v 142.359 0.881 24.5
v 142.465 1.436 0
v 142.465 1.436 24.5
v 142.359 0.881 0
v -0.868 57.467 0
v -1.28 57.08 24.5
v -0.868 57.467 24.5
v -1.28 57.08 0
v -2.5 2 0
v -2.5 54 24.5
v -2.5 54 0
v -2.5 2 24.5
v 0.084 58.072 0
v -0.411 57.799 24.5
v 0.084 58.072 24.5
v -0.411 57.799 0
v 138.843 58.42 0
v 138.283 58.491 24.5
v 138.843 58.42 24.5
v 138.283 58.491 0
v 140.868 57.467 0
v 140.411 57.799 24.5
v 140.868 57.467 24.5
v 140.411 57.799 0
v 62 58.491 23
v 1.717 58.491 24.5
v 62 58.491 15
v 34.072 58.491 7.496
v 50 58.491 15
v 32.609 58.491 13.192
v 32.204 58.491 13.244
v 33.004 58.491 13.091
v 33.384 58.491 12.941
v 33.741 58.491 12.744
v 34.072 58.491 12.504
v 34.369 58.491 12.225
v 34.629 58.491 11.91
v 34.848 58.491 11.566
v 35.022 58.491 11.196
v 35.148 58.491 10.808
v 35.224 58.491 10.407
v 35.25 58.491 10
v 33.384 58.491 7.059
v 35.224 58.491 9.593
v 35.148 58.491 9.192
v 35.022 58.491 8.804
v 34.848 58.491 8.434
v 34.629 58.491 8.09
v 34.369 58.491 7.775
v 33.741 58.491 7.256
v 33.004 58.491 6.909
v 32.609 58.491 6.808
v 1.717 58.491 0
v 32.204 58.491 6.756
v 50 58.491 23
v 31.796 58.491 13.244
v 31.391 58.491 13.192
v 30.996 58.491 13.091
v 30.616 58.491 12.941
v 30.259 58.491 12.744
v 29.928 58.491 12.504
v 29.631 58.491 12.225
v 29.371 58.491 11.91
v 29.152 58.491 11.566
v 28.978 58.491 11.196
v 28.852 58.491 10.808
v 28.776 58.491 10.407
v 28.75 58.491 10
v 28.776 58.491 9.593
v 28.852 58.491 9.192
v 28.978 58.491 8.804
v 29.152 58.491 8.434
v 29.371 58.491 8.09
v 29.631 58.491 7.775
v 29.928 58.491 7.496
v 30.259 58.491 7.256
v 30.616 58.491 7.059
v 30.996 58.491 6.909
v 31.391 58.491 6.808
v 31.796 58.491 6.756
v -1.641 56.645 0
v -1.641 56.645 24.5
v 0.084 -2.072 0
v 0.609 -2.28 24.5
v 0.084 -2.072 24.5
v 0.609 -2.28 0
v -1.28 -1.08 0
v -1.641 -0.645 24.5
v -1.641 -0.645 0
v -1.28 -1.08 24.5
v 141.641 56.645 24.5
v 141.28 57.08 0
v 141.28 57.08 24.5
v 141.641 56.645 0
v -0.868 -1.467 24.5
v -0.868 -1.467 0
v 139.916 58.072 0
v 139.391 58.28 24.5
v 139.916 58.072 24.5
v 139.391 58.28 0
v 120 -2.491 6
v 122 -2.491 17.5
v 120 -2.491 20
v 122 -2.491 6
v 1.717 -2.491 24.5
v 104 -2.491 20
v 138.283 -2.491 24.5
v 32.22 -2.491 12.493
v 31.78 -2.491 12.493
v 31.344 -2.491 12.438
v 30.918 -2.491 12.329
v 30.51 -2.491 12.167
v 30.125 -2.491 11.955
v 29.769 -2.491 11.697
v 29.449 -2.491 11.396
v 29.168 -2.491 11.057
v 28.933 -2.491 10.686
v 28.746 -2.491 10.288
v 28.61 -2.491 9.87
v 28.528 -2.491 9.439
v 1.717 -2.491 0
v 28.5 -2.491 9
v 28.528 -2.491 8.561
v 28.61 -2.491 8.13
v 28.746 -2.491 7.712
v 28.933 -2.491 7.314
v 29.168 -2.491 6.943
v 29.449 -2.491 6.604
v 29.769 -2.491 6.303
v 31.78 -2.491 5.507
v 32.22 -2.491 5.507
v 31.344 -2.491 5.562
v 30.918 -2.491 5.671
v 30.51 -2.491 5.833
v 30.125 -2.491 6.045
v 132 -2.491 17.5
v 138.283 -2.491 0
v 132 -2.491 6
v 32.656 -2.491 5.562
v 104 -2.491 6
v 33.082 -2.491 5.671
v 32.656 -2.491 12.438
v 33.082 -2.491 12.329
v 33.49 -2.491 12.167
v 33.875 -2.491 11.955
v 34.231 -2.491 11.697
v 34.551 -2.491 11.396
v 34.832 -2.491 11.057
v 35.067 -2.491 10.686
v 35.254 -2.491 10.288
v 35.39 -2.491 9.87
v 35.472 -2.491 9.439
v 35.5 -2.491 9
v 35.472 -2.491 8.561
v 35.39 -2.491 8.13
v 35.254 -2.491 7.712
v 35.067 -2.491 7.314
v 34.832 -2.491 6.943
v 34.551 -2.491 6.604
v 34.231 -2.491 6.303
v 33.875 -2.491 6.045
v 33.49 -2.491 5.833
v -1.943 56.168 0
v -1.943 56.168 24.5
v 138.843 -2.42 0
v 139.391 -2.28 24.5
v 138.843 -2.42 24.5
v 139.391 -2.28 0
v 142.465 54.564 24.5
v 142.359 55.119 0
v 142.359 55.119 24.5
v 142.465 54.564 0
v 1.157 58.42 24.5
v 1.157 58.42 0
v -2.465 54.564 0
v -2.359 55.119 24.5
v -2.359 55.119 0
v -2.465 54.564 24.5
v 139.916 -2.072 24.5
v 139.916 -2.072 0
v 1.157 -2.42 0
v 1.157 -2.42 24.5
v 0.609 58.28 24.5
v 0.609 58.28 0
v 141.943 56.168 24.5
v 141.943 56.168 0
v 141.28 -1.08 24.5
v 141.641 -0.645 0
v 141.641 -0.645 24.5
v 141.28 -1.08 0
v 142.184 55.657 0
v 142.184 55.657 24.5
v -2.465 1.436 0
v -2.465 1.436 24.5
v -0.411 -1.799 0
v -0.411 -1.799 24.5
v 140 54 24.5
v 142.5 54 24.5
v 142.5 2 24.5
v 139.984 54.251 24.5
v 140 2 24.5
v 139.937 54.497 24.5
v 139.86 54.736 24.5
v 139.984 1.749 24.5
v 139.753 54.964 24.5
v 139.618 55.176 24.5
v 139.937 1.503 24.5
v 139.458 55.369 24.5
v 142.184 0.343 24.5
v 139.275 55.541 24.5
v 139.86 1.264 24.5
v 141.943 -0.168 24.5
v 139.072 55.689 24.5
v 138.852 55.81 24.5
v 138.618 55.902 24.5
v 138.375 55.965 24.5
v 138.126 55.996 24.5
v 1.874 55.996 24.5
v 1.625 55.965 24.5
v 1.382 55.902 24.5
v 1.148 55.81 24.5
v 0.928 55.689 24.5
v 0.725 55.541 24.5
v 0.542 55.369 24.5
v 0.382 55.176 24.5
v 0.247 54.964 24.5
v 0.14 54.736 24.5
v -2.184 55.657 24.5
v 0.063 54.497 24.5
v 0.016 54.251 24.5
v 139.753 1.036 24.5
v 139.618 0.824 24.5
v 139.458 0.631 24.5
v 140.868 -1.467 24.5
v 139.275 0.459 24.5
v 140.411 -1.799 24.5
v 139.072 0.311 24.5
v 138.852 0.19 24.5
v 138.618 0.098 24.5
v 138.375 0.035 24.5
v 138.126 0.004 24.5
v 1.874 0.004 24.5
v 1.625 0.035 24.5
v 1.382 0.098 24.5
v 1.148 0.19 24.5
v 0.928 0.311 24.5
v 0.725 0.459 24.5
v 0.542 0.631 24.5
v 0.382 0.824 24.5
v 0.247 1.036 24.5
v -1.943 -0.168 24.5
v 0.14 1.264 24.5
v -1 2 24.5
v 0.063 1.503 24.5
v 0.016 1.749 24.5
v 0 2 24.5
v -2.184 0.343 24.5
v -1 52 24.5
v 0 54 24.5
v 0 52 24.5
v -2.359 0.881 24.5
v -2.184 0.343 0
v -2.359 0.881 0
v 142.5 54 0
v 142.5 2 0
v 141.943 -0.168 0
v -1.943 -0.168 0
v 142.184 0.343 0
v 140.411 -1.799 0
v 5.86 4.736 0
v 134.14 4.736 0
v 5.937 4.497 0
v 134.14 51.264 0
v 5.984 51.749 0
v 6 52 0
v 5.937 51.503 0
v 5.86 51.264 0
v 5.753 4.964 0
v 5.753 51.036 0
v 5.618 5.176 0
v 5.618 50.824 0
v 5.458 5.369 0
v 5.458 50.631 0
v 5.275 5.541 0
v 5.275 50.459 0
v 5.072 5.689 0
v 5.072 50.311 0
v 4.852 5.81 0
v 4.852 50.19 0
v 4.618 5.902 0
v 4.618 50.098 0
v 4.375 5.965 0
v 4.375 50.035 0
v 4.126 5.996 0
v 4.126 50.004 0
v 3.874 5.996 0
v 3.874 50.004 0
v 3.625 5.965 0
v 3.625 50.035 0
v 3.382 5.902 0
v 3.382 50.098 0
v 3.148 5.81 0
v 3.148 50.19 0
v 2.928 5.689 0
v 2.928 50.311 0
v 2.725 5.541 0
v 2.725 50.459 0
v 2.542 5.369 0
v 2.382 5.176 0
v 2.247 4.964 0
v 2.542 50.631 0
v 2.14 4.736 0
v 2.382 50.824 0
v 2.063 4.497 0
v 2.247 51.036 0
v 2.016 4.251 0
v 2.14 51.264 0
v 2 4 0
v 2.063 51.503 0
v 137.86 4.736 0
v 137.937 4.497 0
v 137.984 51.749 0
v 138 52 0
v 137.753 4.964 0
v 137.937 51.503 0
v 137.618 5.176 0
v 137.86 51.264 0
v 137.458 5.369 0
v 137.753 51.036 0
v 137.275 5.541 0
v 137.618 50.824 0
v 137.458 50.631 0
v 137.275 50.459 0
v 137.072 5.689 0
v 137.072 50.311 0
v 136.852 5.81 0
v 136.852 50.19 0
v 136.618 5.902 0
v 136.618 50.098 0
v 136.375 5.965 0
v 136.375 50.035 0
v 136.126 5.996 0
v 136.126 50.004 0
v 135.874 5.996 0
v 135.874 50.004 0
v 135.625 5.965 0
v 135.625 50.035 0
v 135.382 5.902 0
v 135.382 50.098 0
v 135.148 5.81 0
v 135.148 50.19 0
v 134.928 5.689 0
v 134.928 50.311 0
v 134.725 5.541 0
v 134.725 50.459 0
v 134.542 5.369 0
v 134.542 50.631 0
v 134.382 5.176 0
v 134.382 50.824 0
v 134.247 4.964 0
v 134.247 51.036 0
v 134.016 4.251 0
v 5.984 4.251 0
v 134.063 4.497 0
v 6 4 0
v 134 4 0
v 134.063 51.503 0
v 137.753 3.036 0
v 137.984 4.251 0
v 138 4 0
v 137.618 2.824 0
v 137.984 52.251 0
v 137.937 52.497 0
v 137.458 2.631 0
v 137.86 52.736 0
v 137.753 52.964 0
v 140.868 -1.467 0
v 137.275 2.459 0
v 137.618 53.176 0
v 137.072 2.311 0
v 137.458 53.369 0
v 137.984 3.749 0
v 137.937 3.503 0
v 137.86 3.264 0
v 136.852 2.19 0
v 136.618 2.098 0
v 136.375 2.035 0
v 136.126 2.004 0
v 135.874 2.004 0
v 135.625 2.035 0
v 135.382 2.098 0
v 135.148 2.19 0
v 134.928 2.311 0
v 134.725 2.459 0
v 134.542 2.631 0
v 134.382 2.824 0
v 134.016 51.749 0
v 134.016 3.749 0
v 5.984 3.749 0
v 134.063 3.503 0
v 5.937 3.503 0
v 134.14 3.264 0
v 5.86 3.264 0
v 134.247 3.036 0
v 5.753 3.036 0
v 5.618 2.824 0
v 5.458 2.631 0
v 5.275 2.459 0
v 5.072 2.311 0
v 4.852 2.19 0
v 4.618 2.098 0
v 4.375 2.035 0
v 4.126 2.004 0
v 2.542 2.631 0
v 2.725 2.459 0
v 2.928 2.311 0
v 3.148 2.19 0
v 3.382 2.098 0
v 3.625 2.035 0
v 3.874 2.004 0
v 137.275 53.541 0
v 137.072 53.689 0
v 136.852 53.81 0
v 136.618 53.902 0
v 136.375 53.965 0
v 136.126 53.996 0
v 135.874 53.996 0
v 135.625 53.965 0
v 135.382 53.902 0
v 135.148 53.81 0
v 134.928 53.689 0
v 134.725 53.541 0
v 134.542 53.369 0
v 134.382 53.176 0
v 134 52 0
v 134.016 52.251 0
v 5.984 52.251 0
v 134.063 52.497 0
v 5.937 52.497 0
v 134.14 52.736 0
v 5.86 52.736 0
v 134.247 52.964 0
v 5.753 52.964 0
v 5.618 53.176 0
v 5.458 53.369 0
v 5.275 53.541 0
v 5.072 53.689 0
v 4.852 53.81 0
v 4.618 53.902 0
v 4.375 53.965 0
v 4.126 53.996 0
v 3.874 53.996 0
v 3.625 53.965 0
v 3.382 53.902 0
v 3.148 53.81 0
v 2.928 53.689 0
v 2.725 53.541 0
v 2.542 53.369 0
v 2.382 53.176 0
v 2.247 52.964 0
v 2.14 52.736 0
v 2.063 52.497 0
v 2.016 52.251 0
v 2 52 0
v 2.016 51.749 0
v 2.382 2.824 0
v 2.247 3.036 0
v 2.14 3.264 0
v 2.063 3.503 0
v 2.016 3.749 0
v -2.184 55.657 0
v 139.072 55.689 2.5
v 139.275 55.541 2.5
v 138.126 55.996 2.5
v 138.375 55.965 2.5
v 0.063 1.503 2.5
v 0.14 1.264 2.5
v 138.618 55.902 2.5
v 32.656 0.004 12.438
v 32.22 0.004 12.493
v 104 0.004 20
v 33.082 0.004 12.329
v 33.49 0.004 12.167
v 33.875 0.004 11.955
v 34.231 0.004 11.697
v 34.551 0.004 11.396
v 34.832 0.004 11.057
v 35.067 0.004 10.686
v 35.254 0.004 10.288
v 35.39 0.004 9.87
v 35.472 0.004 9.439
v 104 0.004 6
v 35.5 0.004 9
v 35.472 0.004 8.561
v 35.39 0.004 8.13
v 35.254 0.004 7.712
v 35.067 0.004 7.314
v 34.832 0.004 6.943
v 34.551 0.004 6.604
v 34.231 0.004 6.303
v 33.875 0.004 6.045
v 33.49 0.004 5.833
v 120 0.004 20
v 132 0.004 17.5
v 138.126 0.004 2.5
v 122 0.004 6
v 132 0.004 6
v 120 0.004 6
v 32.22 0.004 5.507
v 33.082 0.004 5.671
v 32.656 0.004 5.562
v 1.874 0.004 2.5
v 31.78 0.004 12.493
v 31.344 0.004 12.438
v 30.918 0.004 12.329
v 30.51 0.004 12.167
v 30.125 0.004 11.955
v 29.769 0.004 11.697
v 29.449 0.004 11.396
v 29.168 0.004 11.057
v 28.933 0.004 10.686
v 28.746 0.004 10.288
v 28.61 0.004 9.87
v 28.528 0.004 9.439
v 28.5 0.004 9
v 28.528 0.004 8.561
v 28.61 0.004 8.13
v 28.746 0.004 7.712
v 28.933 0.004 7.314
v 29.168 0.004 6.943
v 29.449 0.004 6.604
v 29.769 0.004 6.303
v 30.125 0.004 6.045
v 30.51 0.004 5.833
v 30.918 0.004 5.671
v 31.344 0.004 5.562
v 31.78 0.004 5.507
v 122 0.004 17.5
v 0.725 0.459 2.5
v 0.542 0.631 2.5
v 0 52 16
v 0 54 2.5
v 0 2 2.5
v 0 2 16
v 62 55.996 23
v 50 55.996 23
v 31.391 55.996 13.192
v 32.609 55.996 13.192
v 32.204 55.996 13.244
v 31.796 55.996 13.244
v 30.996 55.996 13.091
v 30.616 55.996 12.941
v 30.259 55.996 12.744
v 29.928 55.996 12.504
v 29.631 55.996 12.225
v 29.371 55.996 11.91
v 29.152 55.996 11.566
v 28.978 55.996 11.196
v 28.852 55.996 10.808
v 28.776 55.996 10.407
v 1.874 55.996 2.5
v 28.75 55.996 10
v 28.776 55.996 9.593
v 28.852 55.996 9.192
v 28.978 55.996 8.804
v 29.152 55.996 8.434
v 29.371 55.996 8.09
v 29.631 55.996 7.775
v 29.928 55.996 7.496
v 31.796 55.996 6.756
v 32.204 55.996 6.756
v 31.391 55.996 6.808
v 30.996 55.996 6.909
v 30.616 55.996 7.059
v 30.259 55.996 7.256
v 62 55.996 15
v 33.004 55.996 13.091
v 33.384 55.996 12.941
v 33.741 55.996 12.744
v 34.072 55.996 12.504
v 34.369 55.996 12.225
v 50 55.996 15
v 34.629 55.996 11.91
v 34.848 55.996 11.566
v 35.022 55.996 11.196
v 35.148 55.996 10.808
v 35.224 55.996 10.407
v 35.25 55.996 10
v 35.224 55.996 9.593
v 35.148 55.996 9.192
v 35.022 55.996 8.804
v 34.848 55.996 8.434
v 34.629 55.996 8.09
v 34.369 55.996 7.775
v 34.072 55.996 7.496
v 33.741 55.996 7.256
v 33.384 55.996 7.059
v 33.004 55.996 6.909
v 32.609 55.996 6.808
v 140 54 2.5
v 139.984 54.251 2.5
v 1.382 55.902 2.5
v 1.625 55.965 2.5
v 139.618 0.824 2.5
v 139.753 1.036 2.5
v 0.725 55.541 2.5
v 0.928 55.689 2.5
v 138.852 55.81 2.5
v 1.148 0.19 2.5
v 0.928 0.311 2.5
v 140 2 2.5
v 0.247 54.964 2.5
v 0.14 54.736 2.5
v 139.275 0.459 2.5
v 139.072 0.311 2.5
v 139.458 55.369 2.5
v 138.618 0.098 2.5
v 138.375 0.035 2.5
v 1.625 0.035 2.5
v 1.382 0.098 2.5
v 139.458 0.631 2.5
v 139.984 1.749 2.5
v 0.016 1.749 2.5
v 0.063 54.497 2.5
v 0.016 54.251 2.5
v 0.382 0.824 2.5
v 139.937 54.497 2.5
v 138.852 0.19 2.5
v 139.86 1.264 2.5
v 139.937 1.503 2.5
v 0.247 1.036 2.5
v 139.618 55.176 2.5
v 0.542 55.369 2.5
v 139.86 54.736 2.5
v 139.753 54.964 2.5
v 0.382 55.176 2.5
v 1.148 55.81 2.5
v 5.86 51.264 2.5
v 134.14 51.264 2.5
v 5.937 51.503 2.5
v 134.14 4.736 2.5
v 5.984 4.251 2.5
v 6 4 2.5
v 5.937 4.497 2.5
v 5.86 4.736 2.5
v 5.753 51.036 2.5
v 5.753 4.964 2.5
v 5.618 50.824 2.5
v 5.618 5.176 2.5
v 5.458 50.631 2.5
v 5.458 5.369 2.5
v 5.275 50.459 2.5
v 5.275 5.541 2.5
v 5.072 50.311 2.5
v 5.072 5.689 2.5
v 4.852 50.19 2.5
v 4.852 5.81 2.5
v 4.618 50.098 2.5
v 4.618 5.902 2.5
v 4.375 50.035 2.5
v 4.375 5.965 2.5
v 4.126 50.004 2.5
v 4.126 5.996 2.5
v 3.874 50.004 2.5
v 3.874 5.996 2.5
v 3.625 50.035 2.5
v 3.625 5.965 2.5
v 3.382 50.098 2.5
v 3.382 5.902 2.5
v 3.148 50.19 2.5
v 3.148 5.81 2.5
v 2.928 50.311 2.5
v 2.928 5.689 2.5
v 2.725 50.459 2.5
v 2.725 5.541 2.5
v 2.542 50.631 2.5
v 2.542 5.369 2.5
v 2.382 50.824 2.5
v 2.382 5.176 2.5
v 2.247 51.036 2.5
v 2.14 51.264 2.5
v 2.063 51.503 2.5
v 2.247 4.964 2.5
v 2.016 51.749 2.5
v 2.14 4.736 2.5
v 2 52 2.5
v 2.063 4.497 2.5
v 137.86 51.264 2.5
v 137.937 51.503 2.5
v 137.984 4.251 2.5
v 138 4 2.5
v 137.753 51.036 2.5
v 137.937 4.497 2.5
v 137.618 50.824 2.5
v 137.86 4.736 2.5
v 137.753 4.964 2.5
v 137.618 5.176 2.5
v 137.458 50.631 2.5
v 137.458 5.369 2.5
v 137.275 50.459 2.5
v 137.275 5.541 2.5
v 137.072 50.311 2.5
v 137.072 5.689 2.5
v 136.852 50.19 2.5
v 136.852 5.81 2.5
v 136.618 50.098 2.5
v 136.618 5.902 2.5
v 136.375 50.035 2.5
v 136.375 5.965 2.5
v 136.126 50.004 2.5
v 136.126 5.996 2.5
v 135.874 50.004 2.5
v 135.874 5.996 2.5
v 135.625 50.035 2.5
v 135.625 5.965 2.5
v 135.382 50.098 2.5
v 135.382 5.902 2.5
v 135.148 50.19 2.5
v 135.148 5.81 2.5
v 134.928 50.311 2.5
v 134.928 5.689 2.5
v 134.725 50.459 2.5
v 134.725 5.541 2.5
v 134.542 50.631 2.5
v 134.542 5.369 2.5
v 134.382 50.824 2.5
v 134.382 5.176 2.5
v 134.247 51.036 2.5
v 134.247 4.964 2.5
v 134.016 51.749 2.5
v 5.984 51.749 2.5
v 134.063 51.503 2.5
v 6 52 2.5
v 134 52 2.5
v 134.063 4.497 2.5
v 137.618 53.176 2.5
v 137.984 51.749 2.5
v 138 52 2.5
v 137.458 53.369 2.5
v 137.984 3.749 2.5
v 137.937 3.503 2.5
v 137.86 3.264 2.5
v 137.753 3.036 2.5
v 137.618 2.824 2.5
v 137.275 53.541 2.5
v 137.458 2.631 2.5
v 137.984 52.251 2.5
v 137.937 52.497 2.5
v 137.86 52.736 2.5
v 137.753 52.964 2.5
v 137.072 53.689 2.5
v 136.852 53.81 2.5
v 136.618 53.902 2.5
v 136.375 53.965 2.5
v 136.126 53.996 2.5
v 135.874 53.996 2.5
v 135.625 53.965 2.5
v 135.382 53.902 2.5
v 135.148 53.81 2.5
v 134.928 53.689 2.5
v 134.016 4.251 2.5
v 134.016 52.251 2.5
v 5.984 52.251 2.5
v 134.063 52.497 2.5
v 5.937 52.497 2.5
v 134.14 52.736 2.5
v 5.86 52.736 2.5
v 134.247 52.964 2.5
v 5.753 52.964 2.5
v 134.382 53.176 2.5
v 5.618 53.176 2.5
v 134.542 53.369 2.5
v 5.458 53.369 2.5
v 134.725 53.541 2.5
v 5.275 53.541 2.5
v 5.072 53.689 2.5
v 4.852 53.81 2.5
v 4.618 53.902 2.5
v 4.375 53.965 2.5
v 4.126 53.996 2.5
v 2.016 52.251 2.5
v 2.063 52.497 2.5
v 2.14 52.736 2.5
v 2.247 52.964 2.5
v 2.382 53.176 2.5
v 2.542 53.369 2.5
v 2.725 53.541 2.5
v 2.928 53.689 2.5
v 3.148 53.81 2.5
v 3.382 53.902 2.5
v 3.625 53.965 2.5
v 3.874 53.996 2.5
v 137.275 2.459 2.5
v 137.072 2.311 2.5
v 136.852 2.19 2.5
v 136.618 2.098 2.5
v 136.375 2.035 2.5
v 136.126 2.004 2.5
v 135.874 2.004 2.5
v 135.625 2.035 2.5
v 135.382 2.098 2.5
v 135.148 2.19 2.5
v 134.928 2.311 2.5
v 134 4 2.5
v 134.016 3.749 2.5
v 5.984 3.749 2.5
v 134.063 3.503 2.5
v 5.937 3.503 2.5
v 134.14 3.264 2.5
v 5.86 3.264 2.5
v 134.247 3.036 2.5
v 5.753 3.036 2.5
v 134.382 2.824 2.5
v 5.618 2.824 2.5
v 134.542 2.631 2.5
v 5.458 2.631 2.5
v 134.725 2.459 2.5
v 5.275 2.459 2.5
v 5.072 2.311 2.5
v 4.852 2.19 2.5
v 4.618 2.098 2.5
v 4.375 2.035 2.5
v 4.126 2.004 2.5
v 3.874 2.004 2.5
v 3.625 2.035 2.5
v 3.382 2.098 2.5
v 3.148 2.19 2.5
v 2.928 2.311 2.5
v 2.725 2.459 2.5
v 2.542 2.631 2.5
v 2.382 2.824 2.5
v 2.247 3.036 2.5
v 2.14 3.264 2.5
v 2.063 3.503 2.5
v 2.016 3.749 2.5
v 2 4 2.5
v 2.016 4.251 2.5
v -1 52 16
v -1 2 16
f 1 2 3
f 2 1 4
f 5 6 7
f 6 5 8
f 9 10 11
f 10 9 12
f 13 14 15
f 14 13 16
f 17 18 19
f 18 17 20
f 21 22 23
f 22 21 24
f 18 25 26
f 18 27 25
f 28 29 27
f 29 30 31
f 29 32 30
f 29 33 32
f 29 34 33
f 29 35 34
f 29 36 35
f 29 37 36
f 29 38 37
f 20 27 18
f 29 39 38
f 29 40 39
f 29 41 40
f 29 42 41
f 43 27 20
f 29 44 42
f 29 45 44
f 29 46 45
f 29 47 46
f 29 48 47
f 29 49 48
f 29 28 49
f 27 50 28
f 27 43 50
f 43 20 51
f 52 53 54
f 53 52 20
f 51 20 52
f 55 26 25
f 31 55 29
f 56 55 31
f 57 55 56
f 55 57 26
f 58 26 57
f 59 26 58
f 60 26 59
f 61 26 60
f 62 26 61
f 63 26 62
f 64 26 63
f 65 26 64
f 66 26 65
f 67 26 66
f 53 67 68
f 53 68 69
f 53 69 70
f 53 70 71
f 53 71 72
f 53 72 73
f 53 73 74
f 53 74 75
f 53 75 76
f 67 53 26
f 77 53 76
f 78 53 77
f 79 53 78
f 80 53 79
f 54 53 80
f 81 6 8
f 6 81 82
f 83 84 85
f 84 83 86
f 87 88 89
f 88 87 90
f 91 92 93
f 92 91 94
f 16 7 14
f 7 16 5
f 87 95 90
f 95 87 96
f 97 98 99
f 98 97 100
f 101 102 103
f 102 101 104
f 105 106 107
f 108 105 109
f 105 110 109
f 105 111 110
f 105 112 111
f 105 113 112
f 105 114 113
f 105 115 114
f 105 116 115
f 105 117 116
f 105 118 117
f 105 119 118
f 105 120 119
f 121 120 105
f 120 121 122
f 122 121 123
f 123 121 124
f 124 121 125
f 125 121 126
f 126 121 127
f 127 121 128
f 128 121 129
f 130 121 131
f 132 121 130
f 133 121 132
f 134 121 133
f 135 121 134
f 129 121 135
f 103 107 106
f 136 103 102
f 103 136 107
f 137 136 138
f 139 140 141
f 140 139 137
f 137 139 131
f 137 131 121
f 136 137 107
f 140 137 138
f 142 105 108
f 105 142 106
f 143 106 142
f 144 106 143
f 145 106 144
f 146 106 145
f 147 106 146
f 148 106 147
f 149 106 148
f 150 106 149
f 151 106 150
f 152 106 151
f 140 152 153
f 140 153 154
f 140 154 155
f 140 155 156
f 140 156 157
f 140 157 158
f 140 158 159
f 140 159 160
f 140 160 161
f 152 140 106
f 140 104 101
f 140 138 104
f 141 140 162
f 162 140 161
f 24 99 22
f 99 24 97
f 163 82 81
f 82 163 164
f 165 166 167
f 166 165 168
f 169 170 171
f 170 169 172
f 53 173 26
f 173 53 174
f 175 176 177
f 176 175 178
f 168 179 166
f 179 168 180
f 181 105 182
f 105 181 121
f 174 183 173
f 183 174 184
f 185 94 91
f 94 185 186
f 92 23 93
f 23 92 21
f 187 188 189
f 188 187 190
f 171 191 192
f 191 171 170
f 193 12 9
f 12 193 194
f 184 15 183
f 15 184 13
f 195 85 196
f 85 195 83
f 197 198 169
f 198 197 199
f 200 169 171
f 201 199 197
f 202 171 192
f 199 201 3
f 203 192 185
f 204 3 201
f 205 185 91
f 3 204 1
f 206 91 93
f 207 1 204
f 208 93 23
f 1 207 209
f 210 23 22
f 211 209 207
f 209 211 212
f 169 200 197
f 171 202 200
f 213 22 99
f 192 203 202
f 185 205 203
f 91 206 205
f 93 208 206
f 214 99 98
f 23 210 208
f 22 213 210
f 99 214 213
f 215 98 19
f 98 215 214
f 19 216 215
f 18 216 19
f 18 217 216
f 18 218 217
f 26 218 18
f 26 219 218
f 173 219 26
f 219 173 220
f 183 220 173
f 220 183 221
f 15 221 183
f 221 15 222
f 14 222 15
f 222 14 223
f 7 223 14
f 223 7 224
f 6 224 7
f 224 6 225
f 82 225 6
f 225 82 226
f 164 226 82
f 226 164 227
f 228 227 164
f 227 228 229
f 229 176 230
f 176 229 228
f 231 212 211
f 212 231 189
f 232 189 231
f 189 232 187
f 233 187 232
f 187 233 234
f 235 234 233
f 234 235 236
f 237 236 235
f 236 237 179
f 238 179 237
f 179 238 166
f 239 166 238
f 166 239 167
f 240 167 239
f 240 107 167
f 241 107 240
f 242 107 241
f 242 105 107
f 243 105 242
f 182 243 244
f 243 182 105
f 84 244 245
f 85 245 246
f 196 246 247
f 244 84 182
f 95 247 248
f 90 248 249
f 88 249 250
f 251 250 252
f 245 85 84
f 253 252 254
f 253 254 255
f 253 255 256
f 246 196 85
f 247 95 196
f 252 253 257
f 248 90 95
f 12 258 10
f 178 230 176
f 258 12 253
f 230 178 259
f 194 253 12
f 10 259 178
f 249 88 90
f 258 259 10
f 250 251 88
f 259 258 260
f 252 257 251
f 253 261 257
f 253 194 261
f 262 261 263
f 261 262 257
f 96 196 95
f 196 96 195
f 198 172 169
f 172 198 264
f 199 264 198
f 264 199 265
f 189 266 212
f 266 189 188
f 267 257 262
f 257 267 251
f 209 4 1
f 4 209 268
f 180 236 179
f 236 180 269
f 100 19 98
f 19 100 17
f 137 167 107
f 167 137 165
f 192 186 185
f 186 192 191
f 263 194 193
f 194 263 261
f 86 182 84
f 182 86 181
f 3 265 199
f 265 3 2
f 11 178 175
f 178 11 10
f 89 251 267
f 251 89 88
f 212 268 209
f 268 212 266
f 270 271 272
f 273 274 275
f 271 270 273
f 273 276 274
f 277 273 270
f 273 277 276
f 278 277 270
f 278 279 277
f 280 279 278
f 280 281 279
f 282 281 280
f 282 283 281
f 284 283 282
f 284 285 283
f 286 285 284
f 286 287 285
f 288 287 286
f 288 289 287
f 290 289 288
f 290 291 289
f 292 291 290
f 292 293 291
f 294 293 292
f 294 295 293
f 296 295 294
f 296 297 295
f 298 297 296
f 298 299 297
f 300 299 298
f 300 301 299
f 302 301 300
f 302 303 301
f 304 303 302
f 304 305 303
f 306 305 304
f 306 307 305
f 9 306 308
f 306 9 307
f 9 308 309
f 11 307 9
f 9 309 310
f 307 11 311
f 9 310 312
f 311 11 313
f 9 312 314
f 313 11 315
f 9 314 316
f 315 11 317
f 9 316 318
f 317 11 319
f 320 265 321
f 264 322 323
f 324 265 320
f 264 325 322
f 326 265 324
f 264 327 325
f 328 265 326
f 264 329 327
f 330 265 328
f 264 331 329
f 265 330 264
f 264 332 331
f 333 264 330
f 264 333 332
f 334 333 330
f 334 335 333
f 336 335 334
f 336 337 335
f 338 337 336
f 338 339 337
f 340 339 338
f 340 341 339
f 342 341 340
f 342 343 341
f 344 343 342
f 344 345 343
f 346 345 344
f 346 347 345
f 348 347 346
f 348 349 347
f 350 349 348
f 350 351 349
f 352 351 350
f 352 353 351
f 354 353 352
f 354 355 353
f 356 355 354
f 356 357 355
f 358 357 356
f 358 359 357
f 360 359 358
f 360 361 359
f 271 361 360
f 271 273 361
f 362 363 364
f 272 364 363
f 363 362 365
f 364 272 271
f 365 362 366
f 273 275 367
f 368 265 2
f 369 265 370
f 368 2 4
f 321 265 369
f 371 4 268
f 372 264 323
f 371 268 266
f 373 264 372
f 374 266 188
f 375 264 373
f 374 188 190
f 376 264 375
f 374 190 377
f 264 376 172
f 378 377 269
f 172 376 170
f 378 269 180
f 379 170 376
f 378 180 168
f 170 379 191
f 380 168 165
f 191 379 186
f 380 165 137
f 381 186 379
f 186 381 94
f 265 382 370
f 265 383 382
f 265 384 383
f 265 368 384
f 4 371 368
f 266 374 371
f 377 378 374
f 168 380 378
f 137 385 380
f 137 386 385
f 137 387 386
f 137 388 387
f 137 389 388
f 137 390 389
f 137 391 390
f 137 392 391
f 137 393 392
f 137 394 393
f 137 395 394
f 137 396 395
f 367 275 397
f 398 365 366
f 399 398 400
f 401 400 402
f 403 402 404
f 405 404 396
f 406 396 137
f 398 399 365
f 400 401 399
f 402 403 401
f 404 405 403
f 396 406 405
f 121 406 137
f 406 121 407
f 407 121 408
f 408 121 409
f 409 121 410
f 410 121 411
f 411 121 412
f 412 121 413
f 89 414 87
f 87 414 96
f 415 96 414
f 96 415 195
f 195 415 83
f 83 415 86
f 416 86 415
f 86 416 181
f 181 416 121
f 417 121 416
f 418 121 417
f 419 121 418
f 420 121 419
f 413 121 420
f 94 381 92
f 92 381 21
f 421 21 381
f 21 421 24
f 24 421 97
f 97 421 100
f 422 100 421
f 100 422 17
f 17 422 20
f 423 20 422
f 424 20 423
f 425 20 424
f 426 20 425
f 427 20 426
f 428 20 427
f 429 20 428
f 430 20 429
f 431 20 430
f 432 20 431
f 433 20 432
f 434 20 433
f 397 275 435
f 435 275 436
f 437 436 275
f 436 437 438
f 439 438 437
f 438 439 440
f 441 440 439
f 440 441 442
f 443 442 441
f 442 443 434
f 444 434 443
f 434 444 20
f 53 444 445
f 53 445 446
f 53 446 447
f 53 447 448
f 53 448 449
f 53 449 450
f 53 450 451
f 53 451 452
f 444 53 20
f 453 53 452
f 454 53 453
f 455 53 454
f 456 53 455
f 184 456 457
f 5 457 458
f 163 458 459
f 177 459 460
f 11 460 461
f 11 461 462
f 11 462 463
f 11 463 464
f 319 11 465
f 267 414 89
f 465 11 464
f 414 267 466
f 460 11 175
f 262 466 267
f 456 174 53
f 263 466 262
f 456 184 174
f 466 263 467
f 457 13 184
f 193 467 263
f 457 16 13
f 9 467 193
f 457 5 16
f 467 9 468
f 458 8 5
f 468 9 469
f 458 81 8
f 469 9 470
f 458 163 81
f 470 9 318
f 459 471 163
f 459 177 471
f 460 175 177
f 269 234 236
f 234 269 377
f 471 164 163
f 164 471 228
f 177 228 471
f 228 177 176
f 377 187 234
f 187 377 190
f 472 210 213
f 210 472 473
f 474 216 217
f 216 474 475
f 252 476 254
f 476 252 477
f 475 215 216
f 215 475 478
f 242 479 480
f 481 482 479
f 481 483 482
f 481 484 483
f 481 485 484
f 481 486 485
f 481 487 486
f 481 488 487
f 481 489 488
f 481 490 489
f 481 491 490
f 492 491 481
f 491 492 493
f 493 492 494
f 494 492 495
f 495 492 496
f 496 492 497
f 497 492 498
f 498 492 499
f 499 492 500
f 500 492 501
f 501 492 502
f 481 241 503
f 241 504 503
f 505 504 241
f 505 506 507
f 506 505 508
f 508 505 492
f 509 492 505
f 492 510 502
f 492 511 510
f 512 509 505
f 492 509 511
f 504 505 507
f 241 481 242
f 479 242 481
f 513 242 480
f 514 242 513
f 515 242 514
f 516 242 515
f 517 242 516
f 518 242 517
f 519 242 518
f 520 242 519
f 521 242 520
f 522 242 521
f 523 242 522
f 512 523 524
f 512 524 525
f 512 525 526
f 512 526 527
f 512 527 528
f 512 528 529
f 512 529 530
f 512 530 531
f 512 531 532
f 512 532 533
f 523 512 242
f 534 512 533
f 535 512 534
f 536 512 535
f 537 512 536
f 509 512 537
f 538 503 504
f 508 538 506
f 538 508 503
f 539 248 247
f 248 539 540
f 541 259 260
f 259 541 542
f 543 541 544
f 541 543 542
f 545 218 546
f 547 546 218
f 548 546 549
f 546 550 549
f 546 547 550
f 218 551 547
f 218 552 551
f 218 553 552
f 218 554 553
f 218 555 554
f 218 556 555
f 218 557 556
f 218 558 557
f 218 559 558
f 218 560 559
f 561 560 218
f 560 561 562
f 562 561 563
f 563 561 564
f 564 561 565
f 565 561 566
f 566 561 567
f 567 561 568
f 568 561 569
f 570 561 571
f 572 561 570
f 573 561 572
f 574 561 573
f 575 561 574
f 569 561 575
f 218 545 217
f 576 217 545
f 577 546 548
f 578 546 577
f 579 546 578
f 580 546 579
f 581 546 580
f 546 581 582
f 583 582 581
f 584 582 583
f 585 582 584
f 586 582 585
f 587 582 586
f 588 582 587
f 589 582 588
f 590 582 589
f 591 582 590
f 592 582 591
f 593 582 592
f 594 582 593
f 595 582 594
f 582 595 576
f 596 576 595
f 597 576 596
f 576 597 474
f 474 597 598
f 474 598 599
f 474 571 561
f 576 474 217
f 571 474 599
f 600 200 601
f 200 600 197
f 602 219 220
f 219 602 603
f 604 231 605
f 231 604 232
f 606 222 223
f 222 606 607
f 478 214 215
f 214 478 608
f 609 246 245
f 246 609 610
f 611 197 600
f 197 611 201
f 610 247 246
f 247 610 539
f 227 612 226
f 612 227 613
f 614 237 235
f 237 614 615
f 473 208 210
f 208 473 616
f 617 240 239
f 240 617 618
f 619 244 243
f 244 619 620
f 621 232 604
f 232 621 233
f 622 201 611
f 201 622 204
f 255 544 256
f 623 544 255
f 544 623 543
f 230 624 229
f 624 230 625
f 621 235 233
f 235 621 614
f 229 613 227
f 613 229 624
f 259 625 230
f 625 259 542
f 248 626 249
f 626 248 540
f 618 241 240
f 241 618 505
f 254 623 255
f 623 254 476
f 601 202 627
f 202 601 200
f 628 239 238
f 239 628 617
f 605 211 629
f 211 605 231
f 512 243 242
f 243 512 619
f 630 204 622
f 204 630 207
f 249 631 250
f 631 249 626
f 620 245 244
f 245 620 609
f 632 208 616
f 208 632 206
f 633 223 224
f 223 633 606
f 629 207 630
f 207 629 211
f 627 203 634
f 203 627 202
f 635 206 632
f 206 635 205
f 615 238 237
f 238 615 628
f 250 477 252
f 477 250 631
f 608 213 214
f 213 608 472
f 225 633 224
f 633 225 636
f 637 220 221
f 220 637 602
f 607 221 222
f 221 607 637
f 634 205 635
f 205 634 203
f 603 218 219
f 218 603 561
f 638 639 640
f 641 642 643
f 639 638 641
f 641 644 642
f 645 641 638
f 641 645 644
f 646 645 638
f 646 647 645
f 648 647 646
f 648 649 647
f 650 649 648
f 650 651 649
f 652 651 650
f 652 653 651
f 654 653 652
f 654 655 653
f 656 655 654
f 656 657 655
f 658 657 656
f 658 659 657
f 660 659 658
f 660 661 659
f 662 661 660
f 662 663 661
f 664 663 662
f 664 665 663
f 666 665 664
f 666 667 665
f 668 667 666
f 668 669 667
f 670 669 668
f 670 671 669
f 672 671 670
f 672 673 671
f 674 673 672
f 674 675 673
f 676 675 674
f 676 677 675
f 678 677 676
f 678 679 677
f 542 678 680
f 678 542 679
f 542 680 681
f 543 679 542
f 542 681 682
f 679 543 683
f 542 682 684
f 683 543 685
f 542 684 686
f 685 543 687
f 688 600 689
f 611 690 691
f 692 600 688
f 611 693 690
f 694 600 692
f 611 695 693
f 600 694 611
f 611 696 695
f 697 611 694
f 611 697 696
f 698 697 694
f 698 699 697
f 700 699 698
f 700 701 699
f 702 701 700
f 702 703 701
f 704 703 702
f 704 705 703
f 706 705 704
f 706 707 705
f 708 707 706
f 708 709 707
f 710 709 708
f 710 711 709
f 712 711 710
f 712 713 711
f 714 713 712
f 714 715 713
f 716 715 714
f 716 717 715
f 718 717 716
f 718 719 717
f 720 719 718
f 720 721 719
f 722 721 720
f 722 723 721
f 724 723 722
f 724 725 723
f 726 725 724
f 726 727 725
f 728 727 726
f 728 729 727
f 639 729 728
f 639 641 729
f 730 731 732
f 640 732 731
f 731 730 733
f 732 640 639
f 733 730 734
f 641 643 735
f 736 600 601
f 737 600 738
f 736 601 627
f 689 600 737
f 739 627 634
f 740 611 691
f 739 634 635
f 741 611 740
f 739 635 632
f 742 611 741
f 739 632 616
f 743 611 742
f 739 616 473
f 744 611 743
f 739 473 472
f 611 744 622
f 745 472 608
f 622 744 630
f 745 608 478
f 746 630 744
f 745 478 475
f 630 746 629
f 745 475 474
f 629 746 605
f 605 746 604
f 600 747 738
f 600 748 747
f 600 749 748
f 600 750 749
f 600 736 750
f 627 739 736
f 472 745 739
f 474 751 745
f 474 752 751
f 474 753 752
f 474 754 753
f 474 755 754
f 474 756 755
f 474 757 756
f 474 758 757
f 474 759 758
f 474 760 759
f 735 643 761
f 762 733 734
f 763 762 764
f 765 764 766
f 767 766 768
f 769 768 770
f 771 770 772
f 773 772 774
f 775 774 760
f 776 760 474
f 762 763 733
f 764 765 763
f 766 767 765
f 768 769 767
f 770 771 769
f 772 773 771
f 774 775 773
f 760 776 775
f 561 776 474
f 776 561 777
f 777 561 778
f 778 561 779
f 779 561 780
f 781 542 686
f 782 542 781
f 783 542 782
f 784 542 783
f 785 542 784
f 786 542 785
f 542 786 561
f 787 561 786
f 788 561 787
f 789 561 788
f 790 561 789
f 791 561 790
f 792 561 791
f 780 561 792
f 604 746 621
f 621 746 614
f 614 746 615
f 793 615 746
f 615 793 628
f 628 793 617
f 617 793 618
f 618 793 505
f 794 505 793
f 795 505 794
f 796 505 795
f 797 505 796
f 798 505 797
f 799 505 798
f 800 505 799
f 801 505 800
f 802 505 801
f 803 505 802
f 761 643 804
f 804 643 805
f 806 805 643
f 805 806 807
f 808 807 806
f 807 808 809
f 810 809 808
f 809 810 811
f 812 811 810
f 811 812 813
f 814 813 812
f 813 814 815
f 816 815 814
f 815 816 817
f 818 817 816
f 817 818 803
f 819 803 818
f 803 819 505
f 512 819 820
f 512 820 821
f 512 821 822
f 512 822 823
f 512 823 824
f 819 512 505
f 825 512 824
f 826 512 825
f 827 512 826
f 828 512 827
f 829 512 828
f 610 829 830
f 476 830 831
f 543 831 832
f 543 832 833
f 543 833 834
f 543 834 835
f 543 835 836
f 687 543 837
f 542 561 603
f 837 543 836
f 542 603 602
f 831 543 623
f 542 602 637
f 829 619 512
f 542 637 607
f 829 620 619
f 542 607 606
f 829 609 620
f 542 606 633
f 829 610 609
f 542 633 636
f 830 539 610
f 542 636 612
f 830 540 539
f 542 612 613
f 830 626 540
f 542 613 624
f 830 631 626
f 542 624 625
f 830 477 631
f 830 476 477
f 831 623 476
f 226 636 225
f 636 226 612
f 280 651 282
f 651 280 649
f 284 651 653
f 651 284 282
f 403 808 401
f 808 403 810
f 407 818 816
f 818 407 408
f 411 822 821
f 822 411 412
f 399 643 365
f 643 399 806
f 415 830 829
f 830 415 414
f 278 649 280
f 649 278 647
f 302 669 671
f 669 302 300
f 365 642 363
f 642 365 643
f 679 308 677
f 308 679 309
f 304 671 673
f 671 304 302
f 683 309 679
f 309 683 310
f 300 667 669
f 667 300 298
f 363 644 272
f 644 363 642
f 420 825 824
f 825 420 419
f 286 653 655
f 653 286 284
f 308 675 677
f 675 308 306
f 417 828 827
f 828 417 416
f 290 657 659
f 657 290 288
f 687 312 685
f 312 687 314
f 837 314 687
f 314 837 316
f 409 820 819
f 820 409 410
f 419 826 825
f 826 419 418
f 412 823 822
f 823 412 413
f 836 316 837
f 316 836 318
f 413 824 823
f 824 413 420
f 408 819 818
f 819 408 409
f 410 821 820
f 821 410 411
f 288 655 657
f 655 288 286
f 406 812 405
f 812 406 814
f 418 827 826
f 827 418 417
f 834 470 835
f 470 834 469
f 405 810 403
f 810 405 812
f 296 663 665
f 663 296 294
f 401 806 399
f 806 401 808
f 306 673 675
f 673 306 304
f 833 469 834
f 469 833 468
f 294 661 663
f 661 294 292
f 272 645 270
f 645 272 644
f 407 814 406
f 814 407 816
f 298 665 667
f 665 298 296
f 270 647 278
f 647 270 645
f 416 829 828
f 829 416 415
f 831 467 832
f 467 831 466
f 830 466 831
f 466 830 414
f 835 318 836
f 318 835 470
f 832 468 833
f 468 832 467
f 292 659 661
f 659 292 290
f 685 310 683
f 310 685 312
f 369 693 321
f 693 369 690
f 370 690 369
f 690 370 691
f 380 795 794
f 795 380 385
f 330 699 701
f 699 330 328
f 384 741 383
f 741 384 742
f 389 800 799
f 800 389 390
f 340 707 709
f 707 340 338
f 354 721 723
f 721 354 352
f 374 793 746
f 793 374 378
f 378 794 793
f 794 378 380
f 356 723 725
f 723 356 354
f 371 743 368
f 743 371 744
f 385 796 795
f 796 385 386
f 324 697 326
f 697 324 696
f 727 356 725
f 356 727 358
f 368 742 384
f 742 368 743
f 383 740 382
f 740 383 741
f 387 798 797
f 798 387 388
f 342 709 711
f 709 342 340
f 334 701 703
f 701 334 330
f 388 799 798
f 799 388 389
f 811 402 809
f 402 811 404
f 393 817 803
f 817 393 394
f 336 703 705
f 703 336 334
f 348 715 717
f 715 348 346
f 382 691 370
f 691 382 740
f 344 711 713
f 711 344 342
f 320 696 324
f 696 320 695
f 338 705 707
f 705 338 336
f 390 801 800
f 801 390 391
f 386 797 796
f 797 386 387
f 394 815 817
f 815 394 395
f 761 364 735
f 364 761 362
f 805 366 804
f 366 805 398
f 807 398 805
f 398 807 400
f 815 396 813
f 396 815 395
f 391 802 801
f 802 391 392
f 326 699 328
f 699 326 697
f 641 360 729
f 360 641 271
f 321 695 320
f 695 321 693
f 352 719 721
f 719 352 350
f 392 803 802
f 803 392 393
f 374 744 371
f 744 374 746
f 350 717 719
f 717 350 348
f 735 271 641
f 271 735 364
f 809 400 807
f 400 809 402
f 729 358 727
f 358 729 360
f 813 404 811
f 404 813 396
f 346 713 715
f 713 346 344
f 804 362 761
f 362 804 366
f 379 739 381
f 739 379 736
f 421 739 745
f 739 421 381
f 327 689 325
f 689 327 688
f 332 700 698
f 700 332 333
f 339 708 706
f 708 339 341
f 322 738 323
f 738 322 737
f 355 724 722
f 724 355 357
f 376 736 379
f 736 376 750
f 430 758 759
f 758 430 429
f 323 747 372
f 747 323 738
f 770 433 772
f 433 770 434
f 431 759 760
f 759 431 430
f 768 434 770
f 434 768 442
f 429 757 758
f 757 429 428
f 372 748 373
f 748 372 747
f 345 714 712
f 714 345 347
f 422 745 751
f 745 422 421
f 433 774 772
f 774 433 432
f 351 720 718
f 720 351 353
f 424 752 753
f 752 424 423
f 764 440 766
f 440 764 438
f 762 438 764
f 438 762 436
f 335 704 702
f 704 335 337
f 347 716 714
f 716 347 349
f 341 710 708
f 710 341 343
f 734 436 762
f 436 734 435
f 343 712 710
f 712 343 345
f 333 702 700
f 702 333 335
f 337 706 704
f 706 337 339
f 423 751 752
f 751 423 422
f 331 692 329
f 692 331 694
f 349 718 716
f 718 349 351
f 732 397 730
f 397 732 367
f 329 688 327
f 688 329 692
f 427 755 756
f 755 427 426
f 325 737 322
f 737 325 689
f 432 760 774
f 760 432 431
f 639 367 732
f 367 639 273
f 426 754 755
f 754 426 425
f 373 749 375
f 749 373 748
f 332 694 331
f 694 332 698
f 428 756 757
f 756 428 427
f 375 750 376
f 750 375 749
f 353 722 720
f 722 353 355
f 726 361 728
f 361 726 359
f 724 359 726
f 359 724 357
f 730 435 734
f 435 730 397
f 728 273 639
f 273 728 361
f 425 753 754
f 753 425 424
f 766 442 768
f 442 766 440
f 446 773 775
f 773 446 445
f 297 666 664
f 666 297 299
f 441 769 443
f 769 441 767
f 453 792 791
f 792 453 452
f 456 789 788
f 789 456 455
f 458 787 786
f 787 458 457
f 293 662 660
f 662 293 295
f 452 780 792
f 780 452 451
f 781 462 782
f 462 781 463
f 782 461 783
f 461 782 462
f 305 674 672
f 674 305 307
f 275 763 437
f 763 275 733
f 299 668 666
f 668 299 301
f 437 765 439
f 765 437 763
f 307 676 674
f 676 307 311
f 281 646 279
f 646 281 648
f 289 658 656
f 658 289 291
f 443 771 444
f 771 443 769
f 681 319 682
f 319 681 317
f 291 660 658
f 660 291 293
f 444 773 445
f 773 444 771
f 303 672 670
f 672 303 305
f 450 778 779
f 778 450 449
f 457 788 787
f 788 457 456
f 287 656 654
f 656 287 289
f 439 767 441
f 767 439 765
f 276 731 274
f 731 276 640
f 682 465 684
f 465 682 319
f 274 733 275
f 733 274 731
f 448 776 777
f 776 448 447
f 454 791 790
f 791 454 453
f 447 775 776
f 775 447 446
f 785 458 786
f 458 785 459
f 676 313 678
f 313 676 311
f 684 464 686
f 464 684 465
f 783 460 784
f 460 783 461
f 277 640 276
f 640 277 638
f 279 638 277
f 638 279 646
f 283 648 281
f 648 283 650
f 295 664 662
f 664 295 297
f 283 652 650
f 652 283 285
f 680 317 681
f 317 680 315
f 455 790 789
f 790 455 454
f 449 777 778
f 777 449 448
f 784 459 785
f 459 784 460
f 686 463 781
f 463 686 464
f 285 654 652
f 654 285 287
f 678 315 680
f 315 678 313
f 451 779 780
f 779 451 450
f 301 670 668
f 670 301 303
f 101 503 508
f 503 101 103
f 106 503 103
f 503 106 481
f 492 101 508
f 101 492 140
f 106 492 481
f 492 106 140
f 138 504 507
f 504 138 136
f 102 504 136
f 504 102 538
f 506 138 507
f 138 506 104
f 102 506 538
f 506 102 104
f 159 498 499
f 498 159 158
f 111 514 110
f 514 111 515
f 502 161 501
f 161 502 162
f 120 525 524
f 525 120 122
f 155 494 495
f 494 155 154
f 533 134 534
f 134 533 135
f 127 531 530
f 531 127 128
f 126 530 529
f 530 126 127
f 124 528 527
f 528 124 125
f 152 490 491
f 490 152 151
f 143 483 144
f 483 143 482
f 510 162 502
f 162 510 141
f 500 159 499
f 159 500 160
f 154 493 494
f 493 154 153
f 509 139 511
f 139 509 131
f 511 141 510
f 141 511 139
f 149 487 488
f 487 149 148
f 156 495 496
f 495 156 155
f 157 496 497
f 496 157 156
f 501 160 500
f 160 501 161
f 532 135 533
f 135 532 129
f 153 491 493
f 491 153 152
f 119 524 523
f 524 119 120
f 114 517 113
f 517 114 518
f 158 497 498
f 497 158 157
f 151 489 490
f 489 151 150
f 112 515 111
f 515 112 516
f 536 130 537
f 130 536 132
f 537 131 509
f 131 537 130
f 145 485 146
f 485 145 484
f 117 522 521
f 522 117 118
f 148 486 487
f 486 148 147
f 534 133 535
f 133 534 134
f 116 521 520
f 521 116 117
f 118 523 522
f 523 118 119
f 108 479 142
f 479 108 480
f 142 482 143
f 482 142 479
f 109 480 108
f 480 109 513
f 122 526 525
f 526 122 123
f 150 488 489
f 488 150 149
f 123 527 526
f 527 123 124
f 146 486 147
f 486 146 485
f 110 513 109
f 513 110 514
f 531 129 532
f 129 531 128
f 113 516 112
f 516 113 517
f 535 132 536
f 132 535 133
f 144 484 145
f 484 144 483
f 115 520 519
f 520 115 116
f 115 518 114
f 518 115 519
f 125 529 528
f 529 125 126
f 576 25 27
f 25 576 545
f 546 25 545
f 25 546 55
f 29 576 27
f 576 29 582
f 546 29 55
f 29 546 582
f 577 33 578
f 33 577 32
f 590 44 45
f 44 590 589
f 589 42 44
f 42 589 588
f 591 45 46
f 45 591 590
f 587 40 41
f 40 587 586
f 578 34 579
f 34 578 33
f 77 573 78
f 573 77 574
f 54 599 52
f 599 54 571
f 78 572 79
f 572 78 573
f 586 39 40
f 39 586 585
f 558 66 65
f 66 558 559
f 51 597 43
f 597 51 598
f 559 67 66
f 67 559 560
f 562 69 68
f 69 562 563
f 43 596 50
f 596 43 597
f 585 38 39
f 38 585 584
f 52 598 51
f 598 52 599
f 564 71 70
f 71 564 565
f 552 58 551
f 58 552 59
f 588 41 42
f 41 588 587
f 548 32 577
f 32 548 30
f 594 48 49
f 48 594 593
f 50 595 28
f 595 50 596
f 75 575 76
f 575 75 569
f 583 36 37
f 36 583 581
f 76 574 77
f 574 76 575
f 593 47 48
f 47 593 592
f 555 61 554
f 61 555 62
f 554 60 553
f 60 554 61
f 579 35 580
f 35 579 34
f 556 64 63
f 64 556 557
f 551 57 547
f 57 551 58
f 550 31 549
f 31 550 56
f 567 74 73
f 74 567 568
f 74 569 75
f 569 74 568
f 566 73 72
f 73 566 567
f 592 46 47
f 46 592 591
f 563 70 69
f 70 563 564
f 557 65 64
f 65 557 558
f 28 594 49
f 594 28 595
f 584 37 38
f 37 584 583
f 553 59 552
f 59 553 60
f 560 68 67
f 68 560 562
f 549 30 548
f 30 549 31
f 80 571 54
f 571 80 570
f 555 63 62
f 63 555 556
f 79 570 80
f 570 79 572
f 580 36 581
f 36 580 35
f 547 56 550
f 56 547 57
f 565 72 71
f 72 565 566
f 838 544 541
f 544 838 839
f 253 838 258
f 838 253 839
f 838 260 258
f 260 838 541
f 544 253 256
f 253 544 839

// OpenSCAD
$fn = 50;
wall = 2.5; 
radius = 2;
height = 22;
width = 140;
depth = 56; 
// for the lid: 
//projection(cut=false)box();

box();

module box()difference(){
union(){
difference(){
    hull(){
        translate([radius,radius,0])cylinder(r=radius+wall,h = height+wall);
        translate([width-radius,radius,0])cylinder(r=radius+wall,h = height+wall);
        translate([width-radius,depth-radius,0])cylinder(r=radius+wall,h = height+wall);
        translate([radius,depth-radius,0])cylinder(r=radius+wall,h = height+wall);
    }
    hull(){
        translate([radius,radius,wall])cylinder(r=radius,h = height+wall);
        translate([width-radius,radius,wall])cylinder(r=radius,h= height+wall);
        translate([width-radius,depth-radius,wall])cylinder(r=radius,h = height+wall);
        translate([radius,depth-radius,wall])cylinder(r=radius,h = height+wall);  
    }  
}
// the standof
//        translate([radius,radius,wall])cylinder(r=radius+wall,h = height);
//      translate([width-radius,radius,wall])cylinder(r=radius+wall,h= height);
//       translate([width-radius,depth-radius,wall])cylinder(r=radius+wall,h = height);
//        translate([radius,depth-radius,wall])cylinder(r=radius+wall,h = height); 
}
// and now the holes
//       translate([radius,radius,-0.01])cylinder(r=radius, h= height);
//        translate([width-radius,radius,-0.01])cylinder(r=radius,h= height);
//        translate([width-radius,depth-radius,-0.01])cylinder(r=radius,h = height);
//        translate([radius,depth-radius,-0.01])cylinder(r=radius,h = height); 

        translate([radius+2,radius+2,-2])cylinder(d=4, h= height);
        translate([width-radius-2,radius+2,-2])cylinder(d=4,h= height);
        translate([width-radius-2,depth-radius-2,-2])cylinder(d=4,h = height);
        translate([radius+2,depth-radius-2,-2])cylinder(d=4,h = height); 
//
        translate([104,-3,6])cube([16,10,14]);

translate([122,-3,6])cube([10,10,11.5]);
translate([32,-3,9])rotate([-90,0,0])cylinder(d=7,h=10);
translate([50,50,15])cube([12,10,8]);

translate([32,50,10])rotate([-90,0,0])cylinder(d=6.5,h=10);
translate([-1,2,16])cube([2,50,30]);
}
 
